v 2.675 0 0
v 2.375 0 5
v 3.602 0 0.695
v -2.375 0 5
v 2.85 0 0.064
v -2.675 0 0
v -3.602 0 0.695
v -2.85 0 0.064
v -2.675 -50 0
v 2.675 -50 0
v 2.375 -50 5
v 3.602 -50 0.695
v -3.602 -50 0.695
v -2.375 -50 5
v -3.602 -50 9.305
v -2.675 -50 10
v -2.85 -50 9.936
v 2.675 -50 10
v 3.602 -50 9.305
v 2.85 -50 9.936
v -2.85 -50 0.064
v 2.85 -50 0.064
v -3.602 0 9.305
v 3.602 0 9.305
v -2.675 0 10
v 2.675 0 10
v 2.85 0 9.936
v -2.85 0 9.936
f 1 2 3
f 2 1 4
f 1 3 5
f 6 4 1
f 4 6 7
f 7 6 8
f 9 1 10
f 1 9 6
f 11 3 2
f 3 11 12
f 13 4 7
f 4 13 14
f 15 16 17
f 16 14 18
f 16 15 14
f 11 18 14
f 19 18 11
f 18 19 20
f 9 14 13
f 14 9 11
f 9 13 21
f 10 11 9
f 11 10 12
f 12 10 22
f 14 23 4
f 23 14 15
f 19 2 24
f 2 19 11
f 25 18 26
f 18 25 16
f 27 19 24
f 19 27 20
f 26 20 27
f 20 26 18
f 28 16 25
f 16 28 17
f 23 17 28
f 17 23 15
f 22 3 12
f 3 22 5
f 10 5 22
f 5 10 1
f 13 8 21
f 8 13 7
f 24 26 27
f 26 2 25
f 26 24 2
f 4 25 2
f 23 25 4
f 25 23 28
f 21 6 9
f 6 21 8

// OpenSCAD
// file: globals.scad
/*
Most things in this file is represented as one millimeter, so keep that in mind while changing things.
Some of the setting are not mm but at variables that you can set, such as 2*x=2x and you are setting what x is.
I will try to specify when things are variables and not exact measurements.
*/

// printer slop
slop = 0.15;

obj_leg = 30;
leg_length = 5.5;
small_number = 0.001;
metal_core_rode_global = 5;


///////////////// number of holes /////////////////////
z_hole_number = 8;
other_holes = 8;

///////////////// Pins /////////////////////

//pins that poke out
ball_size = 10;
pin_height = 20;
pin_diameter = 6;


//holes
hole_ball_size = ball_size;
hole_pin_height = pin_height;
hole_pin_diameter = pin_diameter;

///////////////// Z THINGS /////////////////////

berring_slot_width = 7.5;
berring_slot_depth = 6.5;
metal_core_rode = 5;

///////////////// X THINGS /////////////////////

//male dove tails
male_dove_max_width=8;
male_dove_min_width=5;
male_dove_depth=5;
male_dove_height=obj_leg/2;

function scaled_male_dove_max_width() = male_dove_max_width - slop;
function scaled_male_dove_min_width() = male_dove_min_width - slop;
function scaled_male_dove_depth() = male_dove_depth - slop;

//female dove tails, this is found on the y mounts
girl_max_width=11;
girl_min_width=5;
girl_depth=5;
girl_height=obj_leg;


///////////////// Y THINGS /////////////////////
/*
The Y is so normal that all of those global variables at the top should change all of the setting in it, this section is set her incase there are variables set in the future development of this project.
*/

// stepper
motor_side_length = 43.2;
motor_bolt_hole_distance = 31;
motor_center_hole = 23;
motor_shaft_dia = 5;
motor_shaft_hole_dia = 5+2*slop;

// bolts etc.
bolt_hole_dia = 3+2*slop;
bolt_head_hole_dia = 5.8;

m4_bolt_hole_dia = 4+2*slop;
m4_bolt_head_hole_dia = 6.8+2*slop;


m3_nut_side = 5.65;
m3_nut_height = 2.3;
m4_nut_side = 6.85;
m4_nut_height = 3.1;

// threaded rod
lifter_rod_diam = 9.86;
hole_threaded_rod = lifter_rod_diam+2*slop;

// for the extensions
metal_rod_size = 9;
// main file
length = 50;
tilt_level = 1.1;
scaling_x = .95;
scaling_y = 1;
scaling_z = 1;

include <include.scad>;
include <globals.scad>;

obj_leg = 12;

module bow_tie_master(lngth=length){
	union(){
		mirror([0,1,0])	male_dovetail(height=lngth);
		male_dovetail(height=lngth);
	}
}

module long_bow_tie (lngth=length, scale_x=scaling_x, scale_y=scaling_y, scale_z=scaling_z ) {
    translate([0,0,scale_z*5]) intersection(){
        scale([scale_x,scale_y,scale_z]) rotate([90,0,0]) bow_tie_master(lngth);
        rotate([90,0,0]) cylinder(r=5.7, h=200);
    }
}

long_bow_tie();
